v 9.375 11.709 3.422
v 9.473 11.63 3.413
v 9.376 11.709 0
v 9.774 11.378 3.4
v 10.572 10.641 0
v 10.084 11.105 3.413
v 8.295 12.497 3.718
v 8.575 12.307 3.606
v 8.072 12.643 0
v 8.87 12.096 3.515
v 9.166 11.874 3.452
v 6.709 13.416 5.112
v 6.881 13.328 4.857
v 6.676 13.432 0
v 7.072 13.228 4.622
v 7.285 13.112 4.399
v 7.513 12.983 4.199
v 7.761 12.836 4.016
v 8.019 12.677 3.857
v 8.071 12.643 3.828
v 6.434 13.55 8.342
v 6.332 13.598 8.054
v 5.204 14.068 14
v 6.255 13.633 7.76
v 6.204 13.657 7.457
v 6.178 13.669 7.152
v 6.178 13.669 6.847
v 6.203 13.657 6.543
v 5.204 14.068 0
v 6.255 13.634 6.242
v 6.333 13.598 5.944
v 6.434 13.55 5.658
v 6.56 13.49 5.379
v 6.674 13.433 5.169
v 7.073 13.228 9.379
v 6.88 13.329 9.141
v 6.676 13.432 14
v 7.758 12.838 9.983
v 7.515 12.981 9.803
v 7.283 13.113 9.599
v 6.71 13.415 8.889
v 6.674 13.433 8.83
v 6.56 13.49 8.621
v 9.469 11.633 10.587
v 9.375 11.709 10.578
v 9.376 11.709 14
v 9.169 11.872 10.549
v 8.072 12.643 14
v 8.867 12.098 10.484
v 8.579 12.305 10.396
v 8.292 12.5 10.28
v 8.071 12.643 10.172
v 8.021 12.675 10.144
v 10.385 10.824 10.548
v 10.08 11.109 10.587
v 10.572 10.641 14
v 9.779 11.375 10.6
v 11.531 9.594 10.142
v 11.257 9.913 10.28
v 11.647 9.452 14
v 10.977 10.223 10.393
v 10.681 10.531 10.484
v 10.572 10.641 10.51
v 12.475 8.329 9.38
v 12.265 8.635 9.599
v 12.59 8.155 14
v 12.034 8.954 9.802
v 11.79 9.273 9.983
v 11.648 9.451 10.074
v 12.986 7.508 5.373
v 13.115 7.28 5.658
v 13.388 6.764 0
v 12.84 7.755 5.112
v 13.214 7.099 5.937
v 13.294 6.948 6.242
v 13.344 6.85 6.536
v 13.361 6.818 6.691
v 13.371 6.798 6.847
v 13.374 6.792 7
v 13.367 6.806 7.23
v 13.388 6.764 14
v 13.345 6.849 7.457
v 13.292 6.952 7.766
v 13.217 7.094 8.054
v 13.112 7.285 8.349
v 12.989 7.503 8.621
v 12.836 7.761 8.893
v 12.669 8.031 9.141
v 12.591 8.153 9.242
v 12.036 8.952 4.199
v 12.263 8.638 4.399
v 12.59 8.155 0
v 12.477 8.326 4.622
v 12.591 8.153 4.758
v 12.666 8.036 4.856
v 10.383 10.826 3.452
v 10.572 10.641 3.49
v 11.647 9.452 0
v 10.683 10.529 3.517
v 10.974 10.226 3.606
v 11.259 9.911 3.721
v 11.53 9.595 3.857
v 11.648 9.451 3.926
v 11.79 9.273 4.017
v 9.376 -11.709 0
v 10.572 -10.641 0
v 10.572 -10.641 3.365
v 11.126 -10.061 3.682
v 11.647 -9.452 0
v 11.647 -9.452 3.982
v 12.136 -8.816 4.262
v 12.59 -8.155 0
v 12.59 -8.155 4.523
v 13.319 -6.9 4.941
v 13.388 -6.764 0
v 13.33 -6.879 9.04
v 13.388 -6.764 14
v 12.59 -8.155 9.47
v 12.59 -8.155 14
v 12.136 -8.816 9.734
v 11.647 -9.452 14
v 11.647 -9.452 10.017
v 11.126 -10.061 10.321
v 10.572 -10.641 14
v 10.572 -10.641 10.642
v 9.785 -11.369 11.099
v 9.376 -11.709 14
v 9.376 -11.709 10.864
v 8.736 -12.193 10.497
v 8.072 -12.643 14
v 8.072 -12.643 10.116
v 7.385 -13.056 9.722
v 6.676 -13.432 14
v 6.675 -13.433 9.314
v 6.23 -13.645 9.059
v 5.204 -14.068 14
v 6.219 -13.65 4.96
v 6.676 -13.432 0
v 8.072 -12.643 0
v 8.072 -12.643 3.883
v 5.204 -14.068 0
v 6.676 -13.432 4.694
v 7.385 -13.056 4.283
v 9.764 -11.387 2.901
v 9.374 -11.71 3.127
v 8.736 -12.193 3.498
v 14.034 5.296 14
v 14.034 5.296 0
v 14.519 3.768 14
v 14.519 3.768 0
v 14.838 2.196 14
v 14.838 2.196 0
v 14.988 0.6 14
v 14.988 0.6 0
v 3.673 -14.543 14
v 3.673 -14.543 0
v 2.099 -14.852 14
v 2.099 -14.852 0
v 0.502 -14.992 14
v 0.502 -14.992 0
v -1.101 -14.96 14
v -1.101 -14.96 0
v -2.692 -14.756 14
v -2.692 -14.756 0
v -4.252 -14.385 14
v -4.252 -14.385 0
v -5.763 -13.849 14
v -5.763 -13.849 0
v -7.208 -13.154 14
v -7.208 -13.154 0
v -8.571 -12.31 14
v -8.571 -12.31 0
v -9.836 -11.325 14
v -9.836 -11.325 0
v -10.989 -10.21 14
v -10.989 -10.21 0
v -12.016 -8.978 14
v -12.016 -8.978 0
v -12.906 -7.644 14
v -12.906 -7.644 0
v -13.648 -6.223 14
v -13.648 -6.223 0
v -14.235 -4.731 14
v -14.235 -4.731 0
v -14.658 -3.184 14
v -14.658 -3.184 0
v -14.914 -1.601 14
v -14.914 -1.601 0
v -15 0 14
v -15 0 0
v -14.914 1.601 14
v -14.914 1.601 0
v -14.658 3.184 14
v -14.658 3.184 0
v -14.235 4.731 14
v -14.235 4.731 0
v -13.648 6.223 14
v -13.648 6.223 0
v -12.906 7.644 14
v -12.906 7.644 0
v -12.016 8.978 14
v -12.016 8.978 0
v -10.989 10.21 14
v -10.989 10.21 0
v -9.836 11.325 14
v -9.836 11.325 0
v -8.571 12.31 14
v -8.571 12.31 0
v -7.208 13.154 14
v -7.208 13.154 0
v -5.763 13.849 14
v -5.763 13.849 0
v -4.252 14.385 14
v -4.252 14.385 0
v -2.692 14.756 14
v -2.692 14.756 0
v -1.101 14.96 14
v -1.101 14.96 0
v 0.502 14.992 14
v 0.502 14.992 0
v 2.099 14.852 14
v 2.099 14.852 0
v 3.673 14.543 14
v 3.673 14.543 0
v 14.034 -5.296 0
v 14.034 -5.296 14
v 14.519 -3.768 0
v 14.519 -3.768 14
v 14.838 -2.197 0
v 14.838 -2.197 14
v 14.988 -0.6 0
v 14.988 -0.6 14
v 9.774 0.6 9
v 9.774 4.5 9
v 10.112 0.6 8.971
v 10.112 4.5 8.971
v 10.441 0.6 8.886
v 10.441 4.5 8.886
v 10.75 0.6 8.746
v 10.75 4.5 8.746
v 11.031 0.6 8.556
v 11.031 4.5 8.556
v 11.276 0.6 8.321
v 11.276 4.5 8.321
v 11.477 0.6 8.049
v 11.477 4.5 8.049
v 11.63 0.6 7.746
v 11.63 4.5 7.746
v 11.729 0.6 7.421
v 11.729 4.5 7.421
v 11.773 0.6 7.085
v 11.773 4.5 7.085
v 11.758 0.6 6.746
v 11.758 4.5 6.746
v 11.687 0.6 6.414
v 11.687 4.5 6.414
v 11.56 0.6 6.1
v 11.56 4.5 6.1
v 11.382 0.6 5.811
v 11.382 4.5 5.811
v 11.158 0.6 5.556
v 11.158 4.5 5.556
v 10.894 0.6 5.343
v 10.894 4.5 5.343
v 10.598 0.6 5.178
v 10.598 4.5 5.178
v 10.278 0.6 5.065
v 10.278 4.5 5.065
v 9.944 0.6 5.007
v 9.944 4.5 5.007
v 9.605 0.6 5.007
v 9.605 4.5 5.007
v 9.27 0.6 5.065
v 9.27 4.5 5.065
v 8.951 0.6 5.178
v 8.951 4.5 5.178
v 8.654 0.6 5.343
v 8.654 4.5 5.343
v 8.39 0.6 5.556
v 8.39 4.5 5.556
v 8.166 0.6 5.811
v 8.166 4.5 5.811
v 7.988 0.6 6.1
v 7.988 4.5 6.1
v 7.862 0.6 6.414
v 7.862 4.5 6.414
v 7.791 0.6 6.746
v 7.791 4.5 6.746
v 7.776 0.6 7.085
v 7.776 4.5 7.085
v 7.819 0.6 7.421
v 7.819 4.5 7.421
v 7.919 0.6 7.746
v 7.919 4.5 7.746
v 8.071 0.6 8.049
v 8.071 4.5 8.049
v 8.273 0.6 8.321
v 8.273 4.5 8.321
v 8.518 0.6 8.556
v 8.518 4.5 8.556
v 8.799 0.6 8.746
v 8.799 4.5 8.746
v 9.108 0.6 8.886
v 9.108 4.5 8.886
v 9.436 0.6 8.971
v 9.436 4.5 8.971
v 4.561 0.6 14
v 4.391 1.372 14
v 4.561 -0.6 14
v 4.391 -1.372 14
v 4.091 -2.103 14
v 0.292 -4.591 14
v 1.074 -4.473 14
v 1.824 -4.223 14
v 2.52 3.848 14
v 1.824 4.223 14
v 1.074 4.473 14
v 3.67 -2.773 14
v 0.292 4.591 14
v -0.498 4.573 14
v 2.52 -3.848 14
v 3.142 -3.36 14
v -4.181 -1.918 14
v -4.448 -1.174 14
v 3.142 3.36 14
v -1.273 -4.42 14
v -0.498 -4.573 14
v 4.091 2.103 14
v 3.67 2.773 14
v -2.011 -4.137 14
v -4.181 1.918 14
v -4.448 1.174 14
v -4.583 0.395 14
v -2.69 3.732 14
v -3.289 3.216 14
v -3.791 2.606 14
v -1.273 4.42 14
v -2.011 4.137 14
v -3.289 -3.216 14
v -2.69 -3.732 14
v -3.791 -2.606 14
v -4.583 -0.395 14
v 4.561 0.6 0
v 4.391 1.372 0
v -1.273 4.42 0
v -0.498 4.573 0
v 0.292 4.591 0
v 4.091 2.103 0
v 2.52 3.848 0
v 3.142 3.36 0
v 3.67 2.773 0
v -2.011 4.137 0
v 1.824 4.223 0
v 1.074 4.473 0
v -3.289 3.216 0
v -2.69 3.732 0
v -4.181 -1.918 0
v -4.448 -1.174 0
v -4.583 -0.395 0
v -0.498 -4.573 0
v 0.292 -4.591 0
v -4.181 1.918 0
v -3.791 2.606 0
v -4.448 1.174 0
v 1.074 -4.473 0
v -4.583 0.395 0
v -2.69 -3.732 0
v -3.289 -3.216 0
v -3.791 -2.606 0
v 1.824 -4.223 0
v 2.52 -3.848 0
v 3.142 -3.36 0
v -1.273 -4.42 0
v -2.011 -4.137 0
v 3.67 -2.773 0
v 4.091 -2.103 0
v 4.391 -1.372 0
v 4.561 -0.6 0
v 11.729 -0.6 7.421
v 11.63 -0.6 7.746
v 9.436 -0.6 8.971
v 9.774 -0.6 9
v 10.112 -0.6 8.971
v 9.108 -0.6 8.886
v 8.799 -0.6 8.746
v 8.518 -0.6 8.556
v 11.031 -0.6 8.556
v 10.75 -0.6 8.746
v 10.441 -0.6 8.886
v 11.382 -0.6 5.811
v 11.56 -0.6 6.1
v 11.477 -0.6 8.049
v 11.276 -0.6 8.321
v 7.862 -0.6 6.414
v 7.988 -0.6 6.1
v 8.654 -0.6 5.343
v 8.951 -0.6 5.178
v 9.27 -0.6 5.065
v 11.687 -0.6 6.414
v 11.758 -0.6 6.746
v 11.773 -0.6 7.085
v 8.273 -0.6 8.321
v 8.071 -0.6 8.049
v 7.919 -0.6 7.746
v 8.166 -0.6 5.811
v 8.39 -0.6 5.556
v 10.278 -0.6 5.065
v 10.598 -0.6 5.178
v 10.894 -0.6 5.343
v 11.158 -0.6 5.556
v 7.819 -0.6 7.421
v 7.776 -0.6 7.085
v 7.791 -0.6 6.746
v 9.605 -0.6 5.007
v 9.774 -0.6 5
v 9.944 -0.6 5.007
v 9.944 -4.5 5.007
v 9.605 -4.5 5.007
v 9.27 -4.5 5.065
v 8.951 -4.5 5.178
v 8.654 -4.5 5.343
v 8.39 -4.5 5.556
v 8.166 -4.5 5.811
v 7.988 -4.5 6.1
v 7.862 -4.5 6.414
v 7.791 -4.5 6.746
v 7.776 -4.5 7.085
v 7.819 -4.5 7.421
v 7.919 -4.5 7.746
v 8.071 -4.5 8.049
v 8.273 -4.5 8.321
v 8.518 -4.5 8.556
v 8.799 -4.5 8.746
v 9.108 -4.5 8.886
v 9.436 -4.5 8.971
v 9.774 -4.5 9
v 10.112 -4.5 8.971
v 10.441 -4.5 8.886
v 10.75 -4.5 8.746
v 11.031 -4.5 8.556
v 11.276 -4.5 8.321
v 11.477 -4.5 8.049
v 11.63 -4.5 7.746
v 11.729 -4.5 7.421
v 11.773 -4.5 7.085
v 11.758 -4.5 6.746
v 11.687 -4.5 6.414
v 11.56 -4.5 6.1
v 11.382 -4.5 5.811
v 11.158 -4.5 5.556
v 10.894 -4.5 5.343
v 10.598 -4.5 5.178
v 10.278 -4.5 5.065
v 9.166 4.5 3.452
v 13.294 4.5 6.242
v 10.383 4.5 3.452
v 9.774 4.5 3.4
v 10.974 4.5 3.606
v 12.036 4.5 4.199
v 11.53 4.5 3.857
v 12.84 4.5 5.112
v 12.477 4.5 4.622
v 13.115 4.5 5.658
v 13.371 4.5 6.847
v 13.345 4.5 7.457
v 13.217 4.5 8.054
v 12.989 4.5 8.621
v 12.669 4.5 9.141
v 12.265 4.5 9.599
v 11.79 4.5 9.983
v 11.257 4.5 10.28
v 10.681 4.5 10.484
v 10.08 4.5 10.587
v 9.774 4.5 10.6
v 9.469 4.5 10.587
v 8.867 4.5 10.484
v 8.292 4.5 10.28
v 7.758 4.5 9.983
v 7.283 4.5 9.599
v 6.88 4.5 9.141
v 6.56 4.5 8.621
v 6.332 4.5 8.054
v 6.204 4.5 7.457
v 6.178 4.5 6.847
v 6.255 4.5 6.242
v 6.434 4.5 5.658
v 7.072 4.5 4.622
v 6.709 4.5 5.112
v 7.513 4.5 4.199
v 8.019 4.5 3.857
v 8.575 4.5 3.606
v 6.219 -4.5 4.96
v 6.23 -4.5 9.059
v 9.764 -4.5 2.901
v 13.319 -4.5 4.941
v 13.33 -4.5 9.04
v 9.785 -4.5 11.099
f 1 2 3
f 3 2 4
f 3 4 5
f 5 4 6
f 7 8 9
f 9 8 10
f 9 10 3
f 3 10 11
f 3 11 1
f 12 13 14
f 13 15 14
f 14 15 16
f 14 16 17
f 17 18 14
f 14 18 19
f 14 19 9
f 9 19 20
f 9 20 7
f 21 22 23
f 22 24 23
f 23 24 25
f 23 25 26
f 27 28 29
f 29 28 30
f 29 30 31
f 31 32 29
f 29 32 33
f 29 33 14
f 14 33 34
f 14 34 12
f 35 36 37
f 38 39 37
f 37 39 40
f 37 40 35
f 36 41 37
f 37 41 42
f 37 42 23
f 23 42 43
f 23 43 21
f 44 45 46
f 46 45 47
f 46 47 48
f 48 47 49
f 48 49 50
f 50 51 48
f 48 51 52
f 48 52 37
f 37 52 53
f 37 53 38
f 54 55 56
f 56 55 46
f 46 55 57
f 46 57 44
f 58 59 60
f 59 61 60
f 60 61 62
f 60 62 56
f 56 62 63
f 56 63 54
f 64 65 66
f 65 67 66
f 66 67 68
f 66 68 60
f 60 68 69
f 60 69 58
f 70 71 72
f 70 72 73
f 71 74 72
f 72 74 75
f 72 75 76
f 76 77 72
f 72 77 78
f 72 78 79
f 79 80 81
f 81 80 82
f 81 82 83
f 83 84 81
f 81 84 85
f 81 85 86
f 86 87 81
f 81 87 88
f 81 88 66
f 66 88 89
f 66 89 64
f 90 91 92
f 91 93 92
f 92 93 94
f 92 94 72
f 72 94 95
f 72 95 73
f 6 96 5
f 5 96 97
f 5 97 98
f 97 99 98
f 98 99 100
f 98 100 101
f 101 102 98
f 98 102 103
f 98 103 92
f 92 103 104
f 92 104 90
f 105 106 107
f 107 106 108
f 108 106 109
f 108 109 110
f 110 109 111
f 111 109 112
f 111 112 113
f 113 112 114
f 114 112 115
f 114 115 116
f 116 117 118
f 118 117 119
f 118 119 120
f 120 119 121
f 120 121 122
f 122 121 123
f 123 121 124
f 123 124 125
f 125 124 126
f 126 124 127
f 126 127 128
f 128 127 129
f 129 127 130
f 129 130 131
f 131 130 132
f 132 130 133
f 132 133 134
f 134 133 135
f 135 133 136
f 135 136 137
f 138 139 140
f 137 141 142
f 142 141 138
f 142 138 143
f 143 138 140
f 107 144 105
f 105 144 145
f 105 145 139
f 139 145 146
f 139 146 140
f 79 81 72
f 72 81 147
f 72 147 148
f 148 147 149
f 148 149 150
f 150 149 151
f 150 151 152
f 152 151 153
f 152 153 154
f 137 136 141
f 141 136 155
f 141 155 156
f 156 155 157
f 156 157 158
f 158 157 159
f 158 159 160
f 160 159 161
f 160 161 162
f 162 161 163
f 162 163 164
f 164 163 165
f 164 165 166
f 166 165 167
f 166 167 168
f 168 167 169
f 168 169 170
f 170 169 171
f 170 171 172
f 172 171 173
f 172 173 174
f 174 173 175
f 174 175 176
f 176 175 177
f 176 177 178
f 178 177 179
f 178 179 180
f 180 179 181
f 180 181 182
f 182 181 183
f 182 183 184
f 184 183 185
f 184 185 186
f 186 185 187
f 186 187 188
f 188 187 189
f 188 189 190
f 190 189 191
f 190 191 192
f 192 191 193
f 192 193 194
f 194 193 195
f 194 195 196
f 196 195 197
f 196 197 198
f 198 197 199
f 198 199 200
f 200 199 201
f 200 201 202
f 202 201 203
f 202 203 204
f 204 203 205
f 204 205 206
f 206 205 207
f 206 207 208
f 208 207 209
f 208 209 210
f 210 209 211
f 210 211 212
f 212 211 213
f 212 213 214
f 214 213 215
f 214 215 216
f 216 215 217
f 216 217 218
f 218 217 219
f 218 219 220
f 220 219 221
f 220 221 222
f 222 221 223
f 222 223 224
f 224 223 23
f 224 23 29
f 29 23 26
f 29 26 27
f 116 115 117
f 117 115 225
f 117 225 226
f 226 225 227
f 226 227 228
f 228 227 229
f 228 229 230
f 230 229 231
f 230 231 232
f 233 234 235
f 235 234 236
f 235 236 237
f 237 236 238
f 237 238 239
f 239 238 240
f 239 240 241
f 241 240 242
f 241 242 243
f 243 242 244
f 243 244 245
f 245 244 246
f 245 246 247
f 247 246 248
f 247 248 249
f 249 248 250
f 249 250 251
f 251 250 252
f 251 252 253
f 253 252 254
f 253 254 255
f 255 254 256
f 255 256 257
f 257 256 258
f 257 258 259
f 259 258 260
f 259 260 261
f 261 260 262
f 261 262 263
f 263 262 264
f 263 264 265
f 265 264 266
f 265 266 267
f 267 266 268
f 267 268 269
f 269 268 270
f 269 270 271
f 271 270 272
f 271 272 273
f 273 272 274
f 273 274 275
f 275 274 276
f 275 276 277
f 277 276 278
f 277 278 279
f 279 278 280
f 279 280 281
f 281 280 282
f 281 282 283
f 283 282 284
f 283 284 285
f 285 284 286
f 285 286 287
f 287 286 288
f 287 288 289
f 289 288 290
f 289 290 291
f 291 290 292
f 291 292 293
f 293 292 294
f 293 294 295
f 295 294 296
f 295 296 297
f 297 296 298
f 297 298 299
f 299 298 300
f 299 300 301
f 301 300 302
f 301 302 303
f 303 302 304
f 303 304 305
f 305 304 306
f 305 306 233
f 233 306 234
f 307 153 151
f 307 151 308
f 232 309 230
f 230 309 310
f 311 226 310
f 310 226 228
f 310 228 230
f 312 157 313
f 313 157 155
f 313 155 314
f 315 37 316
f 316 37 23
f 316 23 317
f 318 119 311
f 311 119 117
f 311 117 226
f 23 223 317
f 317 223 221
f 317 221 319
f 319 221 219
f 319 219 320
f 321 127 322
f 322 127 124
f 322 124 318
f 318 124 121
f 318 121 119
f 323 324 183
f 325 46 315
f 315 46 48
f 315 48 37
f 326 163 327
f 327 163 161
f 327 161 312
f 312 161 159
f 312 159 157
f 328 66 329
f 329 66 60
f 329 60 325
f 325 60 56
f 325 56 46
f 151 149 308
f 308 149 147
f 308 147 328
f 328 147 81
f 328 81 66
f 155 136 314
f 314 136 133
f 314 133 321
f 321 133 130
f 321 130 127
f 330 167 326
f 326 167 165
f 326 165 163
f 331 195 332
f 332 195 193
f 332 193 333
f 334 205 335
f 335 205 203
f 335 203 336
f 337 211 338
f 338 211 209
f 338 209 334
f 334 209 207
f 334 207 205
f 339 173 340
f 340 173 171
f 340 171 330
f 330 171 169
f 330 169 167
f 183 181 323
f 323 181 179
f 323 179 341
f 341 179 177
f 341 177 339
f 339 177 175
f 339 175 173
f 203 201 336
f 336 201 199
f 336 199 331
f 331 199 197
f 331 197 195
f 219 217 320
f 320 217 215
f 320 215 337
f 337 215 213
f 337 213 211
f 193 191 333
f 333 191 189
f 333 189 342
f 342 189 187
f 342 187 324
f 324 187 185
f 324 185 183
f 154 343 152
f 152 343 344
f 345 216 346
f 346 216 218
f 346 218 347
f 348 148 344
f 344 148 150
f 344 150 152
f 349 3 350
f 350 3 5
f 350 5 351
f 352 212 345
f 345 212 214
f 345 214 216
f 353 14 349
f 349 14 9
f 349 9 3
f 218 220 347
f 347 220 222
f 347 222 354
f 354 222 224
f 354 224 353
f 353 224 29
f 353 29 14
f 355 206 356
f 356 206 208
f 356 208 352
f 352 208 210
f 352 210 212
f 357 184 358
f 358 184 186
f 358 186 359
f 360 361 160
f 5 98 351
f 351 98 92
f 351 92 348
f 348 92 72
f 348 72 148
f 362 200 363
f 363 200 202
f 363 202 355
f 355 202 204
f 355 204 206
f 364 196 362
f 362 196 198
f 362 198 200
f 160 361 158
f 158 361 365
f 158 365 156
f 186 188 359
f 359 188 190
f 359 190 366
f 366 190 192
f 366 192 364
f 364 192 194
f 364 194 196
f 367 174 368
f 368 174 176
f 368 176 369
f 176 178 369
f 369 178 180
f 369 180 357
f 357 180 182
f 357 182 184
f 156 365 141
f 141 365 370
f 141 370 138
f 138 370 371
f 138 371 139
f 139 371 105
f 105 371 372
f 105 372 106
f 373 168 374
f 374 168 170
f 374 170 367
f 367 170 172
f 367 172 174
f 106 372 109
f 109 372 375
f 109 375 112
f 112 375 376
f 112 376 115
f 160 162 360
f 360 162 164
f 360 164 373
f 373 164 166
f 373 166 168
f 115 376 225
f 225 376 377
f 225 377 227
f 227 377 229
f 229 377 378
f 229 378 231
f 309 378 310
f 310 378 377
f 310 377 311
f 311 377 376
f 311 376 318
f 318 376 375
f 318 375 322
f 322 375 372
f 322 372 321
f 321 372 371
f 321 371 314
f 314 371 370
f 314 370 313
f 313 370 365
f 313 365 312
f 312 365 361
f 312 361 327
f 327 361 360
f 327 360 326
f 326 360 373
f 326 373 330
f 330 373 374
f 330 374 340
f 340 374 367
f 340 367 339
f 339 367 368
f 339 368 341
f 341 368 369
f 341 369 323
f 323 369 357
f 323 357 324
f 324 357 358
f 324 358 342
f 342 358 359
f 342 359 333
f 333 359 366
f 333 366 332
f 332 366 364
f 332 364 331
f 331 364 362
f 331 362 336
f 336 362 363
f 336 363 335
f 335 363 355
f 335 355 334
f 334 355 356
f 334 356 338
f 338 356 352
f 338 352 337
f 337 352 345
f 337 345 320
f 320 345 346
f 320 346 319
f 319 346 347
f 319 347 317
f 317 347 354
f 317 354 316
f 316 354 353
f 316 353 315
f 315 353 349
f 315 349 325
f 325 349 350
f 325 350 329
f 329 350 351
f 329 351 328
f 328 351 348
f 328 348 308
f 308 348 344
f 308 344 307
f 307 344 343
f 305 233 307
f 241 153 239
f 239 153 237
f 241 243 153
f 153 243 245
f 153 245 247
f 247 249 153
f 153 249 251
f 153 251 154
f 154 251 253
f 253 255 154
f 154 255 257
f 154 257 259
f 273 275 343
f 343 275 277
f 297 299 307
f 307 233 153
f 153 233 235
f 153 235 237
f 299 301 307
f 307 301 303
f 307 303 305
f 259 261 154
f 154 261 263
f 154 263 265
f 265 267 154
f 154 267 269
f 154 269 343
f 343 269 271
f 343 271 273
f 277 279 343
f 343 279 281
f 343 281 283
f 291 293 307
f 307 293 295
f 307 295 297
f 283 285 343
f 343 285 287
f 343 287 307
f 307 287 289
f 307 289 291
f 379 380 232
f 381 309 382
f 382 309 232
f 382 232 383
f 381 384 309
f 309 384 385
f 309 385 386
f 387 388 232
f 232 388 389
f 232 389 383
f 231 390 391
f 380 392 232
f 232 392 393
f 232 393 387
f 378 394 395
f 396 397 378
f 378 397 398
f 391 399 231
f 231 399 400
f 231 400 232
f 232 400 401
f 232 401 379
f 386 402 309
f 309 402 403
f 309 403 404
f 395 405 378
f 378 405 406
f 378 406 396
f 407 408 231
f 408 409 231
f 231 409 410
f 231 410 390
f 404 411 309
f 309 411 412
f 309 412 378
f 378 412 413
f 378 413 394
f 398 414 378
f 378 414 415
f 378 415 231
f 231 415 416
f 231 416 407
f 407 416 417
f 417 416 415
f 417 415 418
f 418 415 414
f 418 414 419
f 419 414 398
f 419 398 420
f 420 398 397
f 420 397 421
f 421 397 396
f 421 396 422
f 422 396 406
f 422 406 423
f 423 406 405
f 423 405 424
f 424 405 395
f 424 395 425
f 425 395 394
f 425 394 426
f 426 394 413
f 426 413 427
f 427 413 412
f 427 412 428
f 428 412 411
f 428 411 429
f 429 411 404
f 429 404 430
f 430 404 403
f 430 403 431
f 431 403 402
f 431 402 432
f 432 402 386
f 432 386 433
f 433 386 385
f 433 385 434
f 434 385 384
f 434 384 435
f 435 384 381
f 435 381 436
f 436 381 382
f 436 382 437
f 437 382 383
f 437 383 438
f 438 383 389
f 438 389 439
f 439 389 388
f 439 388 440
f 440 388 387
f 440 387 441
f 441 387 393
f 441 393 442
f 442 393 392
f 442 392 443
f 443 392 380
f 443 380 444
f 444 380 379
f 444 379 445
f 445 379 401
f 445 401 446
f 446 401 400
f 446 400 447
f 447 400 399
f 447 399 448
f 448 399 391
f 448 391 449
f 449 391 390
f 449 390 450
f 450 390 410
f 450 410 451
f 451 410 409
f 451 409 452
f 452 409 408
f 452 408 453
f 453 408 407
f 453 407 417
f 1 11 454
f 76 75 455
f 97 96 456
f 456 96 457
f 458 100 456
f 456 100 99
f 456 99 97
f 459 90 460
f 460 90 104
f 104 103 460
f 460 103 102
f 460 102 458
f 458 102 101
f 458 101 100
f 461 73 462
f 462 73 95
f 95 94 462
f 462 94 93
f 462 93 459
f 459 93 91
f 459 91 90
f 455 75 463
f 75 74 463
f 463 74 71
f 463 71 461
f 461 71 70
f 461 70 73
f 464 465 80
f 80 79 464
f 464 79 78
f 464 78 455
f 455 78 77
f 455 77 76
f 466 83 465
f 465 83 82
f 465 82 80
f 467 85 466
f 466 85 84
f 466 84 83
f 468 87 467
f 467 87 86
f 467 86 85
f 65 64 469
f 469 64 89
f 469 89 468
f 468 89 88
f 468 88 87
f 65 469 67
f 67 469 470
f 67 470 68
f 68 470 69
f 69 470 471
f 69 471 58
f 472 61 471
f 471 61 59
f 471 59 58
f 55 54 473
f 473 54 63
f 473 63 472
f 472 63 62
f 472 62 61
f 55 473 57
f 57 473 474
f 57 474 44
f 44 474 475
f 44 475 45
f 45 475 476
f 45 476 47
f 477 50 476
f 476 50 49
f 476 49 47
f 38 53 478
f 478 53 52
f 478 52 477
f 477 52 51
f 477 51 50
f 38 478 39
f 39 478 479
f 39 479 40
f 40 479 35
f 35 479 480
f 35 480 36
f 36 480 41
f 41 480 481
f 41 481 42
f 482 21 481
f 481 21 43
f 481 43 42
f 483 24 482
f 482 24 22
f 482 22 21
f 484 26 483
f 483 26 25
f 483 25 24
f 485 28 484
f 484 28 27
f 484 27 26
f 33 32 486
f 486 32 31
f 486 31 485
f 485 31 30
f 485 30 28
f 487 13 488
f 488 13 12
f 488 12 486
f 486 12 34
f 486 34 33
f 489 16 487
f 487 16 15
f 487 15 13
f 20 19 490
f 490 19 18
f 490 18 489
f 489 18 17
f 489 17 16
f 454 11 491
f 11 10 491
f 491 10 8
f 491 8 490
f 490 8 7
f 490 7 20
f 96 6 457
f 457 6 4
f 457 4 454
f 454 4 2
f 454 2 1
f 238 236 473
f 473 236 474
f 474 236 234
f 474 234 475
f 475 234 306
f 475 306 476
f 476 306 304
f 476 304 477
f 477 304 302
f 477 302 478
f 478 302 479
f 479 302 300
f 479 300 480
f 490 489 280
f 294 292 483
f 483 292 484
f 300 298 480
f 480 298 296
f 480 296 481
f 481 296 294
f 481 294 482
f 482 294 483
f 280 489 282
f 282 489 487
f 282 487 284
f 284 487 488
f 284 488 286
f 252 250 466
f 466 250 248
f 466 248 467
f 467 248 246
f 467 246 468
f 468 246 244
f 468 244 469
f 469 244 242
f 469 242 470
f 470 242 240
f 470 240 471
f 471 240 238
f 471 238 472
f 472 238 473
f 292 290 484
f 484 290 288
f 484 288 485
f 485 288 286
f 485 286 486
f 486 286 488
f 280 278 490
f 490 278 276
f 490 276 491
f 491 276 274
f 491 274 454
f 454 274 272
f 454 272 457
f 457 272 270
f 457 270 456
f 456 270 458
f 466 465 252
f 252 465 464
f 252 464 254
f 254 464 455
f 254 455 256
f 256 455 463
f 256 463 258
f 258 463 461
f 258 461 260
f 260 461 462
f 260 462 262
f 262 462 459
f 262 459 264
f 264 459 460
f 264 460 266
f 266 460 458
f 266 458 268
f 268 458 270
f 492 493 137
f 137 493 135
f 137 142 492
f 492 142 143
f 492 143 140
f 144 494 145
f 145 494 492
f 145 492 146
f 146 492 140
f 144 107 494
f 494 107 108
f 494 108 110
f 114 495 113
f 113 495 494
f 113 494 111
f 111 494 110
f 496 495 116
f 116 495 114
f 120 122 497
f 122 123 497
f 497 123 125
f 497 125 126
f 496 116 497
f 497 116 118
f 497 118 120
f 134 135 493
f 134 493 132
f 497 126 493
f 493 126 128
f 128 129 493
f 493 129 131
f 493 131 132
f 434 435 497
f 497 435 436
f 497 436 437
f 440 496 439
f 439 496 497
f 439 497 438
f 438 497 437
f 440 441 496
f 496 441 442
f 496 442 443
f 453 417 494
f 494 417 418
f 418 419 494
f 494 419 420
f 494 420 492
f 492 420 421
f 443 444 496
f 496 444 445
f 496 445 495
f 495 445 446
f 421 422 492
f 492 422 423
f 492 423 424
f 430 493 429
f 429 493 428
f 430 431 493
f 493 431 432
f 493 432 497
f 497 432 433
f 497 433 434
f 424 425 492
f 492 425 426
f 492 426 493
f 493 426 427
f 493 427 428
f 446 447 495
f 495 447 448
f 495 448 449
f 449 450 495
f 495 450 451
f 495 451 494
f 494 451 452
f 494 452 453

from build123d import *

# Parameters (mm, degrees)
SKETCH1_R               = 15
SKETCH1_R_2             = 4.6
BOSS_EXTRUDE1_DEPTH     = 14
SKETCH2_W               = 12.4
SKETCH2_H               = 1.2
CUT_EXTRUDE1_DEPTH      = 26.416530054
CUT_EXTRUDE2_DEPTH      = 26.416530054
CUT_EXTRUDE2_DEPTH_BACK = 26.416530054
SKETCH3_R               = 2
CUT_EXTRUDE3_REACH      = 30.306
CUT_EXTRUDE3_END_RADIUS = 15
SKETCH4_R               = 3.6
CUT_EXTRUDE4_REACH      = 30.306
CUT_EXTRUDE4_END_RADIUS = 15


with BuildPart() as part:
    # Sketch1 → Boss-Extrude1 (new body)
    with BuildSketch(Plane.XY):
        Circle(SKETCH1_R)
        Circle(SKETCH1_R_2, mode=Mode.SUBTRACT)
    extrude(amount=BOSS_EXTRUDE1_DEPTH)

    # Sketch2 → Cut-Extrude1 (cut, through all)
    with BuildSketch(Plane.XY.offset(14)):
        with Locations((9.8, 0)):
            Rectangle(SKETCH2_W, SKETCH2_H)
    extrude(amount=-CUT_EXTRUDE1_DEPTH, mode=Mode.SUBTRACT)

    # Sketch3 → Cut-Extrude2 (cut, two sides: drawn at the far end of the back side and taken through both)
    with BuildSketch(Plane(origin=(0, 0, 0), x_dir=(1, 0, 0), z_dir=(0, 1, 0)).offset(-CUT_EXTRUDE2_DEPTH_BACK)):
        with Locations(Location((9.774348448, -7, 0), (0, 0, 270))):
            Circle(SKETCH3_R)
    extrude(amount=CUT_EXTRUDE2_DEPTH + CUT_EXTRUDE2_DEPTH_BACK, mode=Mode.SUBTRACT)

    # Cut-Extrude3: up to this cylinder (the profile starts inside it)
    cut_extrude3_end = Plane(origin=(0, 0, 7), z_dir=(0, 0, -1)) * Cylinder(CUT_EXTRUDE3_END_RADIUS, 91.612, mode=Mode.PRIVATE)
    # Sketch4 → Cut-Extrude3 (cut, up to the surface)
    with BuildSketch(Plane(origin=(0, 4.5, 0), x_dir=(1, 0, 0), z_dir=(0, 1, 0)), mode=Mode.PRIVATE) as cut_extrude3_sk1:
        with Locations(Location((9.774348448, -7, 0), (0, 0, 90))):
            Circle(SKETCH4_R)
    cut_extrude3_tool1 = extrude(cut_extrude3_sk1.sketch, amount=CUT_EXTRUDE3_REACH, mode=Mode.PRIVATE) & cut_extrude3_end
    add(cut_extrude3_tool1.solids().sort_by_distance((9.774348, 4.5, 7))[0], mode=Mode.SUBTRACT)

    # Cut-Extrude4: up to this cylinder (the profile starts inside it)
    cut_extrude4_end = Plane(origin=(0, 0, 7), z_dir=(0, 0, -1)) * Cylinder(CUT_EXTRUDE4_END_RADIUS, 91.612, mode=Mode.PRIVATE)
    # Sketch5 → Cut-Extrude4 (cut, up to the surface)
    with BuildSketch(Plane(origin=(0, -4.5, 0), x_dir=(1, 0, 0), z_dir=(0, 1, 0)), mode=Mode.PRIVATE) as cut_extrude4_sk1:
        Polygon((6.229720914, -9.058870802), (9.785069099, -11.099172892), (13.329696633, -9.04030209), (13.318975982, -4.941129198), (9.763627798, -2.900827108), (6.219000264, -4.95969791), align=None)
    cut_extrude4_tool1 = extrude(cut_extrude4_sk1.sketch, amount=-CUT_EXTRUDE4_REACH, mode=Mode.PRIVATE) & cut_extrude4_end
    add(cut_extrude4_tool1.solids().sort_by_distance((9.774348, -4.5, 7))[0], mode=Mode.SUBTRACT)


solid = part.part
